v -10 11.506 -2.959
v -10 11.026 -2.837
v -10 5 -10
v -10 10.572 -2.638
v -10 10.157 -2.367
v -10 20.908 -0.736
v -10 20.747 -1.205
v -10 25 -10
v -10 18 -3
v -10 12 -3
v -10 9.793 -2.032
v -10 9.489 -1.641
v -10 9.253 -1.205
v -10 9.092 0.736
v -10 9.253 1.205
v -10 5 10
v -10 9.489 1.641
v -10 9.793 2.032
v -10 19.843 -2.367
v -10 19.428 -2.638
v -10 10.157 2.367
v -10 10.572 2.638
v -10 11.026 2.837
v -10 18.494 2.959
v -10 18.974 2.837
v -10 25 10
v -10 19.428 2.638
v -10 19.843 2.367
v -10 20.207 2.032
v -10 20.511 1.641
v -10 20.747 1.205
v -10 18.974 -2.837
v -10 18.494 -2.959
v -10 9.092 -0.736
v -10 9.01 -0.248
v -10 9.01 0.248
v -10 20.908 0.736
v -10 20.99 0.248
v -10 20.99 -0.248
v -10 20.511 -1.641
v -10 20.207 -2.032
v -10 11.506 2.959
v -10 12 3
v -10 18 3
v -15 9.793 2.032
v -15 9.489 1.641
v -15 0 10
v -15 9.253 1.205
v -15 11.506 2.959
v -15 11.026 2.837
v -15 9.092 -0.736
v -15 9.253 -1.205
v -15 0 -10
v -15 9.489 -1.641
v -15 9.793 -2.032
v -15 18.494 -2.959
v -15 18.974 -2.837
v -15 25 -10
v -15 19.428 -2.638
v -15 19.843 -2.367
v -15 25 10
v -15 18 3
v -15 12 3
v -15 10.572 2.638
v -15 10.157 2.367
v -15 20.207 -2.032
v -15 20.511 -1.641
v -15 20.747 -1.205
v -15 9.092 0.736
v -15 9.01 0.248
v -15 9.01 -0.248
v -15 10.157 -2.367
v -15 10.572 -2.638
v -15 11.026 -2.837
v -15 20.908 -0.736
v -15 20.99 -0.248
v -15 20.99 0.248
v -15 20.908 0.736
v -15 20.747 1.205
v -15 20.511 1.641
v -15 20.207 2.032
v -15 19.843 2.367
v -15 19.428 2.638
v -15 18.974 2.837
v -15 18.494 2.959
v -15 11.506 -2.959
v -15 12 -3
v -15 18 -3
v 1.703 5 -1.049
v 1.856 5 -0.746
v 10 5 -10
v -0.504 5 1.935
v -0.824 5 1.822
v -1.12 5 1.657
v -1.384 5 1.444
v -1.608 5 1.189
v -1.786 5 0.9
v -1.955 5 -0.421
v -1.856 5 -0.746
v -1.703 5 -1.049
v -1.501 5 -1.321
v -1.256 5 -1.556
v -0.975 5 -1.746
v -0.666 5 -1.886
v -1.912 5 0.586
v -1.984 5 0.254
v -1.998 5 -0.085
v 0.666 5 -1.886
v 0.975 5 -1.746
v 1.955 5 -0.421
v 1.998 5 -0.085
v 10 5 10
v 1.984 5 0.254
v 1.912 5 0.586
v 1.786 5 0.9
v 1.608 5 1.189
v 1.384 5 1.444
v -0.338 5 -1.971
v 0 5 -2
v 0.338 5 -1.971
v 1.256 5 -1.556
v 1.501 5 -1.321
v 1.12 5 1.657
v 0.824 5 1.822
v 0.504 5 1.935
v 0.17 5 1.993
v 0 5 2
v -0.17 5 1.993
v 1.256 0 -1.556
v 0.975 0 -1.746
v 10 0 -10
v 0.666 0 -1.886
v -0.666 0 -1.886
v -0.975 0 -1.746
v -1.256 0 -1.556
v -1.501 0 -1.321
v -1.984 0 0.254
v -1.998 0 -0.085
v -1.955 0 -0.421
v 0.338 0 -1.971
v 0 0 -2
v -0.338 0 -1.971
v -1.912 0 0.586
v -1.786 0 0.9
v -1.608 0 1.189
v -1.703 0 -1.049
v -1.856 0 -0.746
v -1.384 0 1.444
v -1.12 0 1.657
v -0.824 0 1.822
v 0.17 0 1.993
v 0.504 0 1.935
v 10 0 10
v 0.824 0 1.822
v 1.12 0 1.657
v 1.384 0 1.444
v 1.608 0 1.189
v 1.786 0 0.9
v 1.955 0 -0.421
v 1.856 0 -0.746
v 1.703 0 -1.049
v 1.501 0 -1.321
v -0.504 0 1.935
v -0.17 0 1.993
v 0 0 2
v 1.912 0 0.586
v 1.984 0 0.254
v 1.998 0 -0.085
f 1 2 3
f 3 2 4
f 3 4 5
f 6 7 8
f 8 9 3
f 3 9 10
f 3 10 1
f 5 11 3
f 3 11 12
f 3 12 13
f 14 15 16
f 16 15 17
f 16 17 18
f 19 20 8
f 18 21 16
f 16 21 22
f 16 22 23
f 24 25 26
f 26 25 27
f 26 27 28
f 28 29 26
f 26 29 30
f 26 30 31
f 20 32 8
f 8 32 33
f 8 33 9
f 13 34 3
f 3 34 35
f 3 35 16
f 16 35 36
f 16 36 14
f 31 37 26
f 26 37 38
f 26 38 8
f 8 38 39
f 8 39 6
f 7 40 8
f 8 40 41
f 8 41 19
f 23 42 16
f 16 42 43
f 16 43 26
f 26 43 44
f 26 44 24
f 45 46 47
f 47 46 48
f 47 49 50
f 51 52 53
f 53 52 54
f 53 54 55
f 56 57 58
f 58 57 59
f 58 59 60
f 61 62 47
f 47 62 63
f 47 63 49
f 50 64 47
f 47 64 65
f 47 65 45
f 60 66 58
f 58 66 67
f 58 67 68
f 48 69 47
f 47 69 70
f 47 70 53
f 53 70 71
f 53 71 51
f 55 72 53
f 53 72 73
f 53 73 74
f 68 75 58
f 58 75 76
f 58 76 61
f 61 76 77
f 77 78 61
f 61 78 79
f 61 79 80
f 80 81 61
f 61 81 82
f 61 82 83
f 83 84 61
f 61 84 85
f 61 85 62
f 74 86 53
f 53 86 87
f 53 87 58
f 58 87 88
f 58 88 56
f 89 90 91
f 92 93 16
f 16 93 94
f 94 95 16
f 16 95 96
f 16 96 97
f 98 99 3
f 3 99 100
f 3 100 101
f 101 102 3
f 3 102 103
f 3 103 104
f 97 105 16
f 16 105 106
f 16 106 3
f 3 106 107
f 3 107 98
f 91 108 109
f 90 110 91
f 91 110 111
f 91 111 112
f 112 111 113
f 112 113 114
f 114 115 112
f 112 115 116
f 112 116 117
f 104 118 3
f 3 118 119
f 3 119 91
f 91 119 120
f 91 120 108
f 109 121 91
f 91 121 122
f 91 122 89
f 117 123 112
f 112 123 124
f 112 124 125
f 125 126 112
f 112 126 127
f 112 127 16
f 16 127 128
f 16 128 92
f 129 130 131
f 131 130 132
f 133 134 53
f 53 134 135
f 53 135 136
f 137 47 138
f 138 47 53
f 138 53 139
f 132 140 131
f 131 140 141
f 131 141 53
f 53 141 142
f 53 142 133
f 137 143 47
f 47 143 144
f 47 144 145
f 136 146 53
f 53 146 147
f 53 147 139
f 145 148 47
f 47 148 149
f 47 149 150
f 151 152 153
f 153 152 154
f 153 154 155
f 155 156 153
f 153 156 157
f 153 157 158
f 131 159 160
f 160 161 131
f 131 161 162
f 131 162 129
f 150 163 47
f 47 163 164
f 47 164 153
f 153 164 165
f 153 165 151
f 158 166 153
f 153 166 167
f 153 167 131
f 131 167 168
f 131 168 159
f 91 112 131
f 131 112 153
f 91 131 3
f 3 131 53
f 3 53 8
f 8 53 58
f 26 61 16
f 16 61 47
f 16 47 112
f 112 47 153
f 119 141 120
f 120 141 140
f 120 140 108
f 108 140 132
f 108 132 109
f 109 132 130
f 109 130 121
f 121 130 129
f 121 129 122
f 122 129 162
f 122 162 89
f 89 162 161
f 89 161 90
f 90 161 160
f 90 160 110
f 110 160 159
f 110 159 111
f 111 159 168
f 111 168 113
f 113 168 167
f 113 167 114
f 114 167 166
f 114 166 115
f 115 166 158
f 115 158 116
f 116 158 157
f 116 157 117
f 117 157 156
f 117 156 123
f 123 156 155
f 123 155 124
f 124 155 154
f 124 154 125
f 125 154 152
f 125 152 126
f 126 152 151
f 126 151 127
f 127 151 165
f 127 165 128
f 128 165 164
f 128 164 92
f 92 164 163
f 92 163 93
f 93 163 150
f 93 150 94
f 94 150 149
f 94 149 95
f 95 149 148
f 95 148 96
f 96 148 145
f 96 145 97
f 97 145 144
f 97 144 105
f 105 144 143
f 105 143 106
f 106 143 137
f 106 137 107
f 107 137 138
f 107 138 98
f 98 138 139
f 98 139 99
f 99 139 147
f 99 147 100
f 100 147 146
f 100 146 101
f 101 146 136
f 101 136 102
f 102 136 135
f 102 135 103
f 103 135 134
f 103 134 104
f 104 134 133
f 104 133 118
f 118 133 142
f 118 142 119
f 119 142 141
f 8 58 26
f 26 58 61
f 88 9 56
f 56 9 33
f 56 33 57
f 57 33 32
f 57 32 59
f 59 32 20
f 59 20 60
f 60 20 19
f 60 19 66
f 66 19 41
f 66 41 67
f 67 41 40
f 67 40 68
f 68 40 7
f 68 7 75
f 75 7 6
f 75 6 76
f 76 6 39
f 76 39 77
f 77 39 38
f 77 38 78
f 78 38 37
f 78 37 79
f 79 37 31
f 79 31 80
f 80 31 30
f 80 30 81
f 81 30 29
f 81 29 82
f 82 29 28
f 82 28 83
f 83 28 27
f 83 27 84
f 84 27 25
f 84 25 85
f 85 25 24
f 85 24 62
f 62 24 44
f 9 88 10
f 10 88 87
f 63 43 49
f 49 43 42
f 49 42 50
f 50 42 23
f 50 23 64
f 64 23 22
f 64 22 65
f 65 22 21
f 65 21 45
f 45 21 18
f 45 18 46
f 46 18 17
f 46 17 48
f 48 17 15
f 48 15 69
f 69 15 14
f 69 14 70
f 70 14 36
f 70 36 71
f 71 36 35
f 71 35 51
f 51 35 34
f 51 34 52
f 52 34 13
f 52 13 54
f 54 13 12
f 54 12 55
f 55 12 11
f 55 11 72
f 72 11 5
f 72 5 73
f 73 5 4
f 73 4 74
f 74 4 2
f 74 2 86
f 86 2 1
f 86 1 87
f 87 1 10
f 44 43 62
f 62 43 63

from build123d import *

# Parameters (mm, degrees)
SKETCH1_W           = 20
SKETCH1_H           = 20
SKETCH1_R           = 2
BOSS_EXTRUDE1_DEPTH = 5
SKETCH2_W           = 5
SKETCH2_H           = 20
BOSS_EXTRUDE2_DEPTH = 25
SKETCH3_W           = 6
SKETCH3_H           = 6
CUT_EXTRUDE1_DEPTH  = 25


with BuildPart() as part:
    # Sketch1 → Boss-Extrude1 (new body)
    with BuildSketch(Plane(origin=(0, 0, 0), x_dir=(1, 0, 0), z_dir=(0, 1, 0))):
        Rectangle(SKETCH1_W, SKETCH1_H)
        Circle(SKETCH1_R, mode=Mode.SUBTRACT)
    extrude(amount=BOSS_EXTRUDE1_DEPTH)

    # Sketch2 → Boss-Extrude2 (add)
    with BuildSketch(Plane.XZ):
        with Locations((-12.5, 0)):
            Rectangle(SKETCH2_W, SKETCH2_H)
    extrude(amount=-BOSS_EXTRUDE2_DEPTH)

    # Sketch3 → Cut-Extrude1 (cut)
    with BuildSketch(Plane(origin=(-10, 0, 0), x_dir=(0, 0, -1), z_dir=(1, 0, 0))):
        with BuildLine():
            ThreePointArc((-3, 18), (0, 21), (3, 18))
            Line((3, 18), (-3, 18))
        make_face()
        with Locations((0, 15)):
            Rectangle(SKETCH3_W, SKETCH3_H)
        with BuildLine():
            ThreePointArc((3, 12), (0, 9), (-3, 12))
            Line((-3, 12), (3, 12))
        make_face()
    extrude(amount=-CUT_EXTRUDE1_DEPTH, mode=Mode.SUBTRACT)


solid = part.part
